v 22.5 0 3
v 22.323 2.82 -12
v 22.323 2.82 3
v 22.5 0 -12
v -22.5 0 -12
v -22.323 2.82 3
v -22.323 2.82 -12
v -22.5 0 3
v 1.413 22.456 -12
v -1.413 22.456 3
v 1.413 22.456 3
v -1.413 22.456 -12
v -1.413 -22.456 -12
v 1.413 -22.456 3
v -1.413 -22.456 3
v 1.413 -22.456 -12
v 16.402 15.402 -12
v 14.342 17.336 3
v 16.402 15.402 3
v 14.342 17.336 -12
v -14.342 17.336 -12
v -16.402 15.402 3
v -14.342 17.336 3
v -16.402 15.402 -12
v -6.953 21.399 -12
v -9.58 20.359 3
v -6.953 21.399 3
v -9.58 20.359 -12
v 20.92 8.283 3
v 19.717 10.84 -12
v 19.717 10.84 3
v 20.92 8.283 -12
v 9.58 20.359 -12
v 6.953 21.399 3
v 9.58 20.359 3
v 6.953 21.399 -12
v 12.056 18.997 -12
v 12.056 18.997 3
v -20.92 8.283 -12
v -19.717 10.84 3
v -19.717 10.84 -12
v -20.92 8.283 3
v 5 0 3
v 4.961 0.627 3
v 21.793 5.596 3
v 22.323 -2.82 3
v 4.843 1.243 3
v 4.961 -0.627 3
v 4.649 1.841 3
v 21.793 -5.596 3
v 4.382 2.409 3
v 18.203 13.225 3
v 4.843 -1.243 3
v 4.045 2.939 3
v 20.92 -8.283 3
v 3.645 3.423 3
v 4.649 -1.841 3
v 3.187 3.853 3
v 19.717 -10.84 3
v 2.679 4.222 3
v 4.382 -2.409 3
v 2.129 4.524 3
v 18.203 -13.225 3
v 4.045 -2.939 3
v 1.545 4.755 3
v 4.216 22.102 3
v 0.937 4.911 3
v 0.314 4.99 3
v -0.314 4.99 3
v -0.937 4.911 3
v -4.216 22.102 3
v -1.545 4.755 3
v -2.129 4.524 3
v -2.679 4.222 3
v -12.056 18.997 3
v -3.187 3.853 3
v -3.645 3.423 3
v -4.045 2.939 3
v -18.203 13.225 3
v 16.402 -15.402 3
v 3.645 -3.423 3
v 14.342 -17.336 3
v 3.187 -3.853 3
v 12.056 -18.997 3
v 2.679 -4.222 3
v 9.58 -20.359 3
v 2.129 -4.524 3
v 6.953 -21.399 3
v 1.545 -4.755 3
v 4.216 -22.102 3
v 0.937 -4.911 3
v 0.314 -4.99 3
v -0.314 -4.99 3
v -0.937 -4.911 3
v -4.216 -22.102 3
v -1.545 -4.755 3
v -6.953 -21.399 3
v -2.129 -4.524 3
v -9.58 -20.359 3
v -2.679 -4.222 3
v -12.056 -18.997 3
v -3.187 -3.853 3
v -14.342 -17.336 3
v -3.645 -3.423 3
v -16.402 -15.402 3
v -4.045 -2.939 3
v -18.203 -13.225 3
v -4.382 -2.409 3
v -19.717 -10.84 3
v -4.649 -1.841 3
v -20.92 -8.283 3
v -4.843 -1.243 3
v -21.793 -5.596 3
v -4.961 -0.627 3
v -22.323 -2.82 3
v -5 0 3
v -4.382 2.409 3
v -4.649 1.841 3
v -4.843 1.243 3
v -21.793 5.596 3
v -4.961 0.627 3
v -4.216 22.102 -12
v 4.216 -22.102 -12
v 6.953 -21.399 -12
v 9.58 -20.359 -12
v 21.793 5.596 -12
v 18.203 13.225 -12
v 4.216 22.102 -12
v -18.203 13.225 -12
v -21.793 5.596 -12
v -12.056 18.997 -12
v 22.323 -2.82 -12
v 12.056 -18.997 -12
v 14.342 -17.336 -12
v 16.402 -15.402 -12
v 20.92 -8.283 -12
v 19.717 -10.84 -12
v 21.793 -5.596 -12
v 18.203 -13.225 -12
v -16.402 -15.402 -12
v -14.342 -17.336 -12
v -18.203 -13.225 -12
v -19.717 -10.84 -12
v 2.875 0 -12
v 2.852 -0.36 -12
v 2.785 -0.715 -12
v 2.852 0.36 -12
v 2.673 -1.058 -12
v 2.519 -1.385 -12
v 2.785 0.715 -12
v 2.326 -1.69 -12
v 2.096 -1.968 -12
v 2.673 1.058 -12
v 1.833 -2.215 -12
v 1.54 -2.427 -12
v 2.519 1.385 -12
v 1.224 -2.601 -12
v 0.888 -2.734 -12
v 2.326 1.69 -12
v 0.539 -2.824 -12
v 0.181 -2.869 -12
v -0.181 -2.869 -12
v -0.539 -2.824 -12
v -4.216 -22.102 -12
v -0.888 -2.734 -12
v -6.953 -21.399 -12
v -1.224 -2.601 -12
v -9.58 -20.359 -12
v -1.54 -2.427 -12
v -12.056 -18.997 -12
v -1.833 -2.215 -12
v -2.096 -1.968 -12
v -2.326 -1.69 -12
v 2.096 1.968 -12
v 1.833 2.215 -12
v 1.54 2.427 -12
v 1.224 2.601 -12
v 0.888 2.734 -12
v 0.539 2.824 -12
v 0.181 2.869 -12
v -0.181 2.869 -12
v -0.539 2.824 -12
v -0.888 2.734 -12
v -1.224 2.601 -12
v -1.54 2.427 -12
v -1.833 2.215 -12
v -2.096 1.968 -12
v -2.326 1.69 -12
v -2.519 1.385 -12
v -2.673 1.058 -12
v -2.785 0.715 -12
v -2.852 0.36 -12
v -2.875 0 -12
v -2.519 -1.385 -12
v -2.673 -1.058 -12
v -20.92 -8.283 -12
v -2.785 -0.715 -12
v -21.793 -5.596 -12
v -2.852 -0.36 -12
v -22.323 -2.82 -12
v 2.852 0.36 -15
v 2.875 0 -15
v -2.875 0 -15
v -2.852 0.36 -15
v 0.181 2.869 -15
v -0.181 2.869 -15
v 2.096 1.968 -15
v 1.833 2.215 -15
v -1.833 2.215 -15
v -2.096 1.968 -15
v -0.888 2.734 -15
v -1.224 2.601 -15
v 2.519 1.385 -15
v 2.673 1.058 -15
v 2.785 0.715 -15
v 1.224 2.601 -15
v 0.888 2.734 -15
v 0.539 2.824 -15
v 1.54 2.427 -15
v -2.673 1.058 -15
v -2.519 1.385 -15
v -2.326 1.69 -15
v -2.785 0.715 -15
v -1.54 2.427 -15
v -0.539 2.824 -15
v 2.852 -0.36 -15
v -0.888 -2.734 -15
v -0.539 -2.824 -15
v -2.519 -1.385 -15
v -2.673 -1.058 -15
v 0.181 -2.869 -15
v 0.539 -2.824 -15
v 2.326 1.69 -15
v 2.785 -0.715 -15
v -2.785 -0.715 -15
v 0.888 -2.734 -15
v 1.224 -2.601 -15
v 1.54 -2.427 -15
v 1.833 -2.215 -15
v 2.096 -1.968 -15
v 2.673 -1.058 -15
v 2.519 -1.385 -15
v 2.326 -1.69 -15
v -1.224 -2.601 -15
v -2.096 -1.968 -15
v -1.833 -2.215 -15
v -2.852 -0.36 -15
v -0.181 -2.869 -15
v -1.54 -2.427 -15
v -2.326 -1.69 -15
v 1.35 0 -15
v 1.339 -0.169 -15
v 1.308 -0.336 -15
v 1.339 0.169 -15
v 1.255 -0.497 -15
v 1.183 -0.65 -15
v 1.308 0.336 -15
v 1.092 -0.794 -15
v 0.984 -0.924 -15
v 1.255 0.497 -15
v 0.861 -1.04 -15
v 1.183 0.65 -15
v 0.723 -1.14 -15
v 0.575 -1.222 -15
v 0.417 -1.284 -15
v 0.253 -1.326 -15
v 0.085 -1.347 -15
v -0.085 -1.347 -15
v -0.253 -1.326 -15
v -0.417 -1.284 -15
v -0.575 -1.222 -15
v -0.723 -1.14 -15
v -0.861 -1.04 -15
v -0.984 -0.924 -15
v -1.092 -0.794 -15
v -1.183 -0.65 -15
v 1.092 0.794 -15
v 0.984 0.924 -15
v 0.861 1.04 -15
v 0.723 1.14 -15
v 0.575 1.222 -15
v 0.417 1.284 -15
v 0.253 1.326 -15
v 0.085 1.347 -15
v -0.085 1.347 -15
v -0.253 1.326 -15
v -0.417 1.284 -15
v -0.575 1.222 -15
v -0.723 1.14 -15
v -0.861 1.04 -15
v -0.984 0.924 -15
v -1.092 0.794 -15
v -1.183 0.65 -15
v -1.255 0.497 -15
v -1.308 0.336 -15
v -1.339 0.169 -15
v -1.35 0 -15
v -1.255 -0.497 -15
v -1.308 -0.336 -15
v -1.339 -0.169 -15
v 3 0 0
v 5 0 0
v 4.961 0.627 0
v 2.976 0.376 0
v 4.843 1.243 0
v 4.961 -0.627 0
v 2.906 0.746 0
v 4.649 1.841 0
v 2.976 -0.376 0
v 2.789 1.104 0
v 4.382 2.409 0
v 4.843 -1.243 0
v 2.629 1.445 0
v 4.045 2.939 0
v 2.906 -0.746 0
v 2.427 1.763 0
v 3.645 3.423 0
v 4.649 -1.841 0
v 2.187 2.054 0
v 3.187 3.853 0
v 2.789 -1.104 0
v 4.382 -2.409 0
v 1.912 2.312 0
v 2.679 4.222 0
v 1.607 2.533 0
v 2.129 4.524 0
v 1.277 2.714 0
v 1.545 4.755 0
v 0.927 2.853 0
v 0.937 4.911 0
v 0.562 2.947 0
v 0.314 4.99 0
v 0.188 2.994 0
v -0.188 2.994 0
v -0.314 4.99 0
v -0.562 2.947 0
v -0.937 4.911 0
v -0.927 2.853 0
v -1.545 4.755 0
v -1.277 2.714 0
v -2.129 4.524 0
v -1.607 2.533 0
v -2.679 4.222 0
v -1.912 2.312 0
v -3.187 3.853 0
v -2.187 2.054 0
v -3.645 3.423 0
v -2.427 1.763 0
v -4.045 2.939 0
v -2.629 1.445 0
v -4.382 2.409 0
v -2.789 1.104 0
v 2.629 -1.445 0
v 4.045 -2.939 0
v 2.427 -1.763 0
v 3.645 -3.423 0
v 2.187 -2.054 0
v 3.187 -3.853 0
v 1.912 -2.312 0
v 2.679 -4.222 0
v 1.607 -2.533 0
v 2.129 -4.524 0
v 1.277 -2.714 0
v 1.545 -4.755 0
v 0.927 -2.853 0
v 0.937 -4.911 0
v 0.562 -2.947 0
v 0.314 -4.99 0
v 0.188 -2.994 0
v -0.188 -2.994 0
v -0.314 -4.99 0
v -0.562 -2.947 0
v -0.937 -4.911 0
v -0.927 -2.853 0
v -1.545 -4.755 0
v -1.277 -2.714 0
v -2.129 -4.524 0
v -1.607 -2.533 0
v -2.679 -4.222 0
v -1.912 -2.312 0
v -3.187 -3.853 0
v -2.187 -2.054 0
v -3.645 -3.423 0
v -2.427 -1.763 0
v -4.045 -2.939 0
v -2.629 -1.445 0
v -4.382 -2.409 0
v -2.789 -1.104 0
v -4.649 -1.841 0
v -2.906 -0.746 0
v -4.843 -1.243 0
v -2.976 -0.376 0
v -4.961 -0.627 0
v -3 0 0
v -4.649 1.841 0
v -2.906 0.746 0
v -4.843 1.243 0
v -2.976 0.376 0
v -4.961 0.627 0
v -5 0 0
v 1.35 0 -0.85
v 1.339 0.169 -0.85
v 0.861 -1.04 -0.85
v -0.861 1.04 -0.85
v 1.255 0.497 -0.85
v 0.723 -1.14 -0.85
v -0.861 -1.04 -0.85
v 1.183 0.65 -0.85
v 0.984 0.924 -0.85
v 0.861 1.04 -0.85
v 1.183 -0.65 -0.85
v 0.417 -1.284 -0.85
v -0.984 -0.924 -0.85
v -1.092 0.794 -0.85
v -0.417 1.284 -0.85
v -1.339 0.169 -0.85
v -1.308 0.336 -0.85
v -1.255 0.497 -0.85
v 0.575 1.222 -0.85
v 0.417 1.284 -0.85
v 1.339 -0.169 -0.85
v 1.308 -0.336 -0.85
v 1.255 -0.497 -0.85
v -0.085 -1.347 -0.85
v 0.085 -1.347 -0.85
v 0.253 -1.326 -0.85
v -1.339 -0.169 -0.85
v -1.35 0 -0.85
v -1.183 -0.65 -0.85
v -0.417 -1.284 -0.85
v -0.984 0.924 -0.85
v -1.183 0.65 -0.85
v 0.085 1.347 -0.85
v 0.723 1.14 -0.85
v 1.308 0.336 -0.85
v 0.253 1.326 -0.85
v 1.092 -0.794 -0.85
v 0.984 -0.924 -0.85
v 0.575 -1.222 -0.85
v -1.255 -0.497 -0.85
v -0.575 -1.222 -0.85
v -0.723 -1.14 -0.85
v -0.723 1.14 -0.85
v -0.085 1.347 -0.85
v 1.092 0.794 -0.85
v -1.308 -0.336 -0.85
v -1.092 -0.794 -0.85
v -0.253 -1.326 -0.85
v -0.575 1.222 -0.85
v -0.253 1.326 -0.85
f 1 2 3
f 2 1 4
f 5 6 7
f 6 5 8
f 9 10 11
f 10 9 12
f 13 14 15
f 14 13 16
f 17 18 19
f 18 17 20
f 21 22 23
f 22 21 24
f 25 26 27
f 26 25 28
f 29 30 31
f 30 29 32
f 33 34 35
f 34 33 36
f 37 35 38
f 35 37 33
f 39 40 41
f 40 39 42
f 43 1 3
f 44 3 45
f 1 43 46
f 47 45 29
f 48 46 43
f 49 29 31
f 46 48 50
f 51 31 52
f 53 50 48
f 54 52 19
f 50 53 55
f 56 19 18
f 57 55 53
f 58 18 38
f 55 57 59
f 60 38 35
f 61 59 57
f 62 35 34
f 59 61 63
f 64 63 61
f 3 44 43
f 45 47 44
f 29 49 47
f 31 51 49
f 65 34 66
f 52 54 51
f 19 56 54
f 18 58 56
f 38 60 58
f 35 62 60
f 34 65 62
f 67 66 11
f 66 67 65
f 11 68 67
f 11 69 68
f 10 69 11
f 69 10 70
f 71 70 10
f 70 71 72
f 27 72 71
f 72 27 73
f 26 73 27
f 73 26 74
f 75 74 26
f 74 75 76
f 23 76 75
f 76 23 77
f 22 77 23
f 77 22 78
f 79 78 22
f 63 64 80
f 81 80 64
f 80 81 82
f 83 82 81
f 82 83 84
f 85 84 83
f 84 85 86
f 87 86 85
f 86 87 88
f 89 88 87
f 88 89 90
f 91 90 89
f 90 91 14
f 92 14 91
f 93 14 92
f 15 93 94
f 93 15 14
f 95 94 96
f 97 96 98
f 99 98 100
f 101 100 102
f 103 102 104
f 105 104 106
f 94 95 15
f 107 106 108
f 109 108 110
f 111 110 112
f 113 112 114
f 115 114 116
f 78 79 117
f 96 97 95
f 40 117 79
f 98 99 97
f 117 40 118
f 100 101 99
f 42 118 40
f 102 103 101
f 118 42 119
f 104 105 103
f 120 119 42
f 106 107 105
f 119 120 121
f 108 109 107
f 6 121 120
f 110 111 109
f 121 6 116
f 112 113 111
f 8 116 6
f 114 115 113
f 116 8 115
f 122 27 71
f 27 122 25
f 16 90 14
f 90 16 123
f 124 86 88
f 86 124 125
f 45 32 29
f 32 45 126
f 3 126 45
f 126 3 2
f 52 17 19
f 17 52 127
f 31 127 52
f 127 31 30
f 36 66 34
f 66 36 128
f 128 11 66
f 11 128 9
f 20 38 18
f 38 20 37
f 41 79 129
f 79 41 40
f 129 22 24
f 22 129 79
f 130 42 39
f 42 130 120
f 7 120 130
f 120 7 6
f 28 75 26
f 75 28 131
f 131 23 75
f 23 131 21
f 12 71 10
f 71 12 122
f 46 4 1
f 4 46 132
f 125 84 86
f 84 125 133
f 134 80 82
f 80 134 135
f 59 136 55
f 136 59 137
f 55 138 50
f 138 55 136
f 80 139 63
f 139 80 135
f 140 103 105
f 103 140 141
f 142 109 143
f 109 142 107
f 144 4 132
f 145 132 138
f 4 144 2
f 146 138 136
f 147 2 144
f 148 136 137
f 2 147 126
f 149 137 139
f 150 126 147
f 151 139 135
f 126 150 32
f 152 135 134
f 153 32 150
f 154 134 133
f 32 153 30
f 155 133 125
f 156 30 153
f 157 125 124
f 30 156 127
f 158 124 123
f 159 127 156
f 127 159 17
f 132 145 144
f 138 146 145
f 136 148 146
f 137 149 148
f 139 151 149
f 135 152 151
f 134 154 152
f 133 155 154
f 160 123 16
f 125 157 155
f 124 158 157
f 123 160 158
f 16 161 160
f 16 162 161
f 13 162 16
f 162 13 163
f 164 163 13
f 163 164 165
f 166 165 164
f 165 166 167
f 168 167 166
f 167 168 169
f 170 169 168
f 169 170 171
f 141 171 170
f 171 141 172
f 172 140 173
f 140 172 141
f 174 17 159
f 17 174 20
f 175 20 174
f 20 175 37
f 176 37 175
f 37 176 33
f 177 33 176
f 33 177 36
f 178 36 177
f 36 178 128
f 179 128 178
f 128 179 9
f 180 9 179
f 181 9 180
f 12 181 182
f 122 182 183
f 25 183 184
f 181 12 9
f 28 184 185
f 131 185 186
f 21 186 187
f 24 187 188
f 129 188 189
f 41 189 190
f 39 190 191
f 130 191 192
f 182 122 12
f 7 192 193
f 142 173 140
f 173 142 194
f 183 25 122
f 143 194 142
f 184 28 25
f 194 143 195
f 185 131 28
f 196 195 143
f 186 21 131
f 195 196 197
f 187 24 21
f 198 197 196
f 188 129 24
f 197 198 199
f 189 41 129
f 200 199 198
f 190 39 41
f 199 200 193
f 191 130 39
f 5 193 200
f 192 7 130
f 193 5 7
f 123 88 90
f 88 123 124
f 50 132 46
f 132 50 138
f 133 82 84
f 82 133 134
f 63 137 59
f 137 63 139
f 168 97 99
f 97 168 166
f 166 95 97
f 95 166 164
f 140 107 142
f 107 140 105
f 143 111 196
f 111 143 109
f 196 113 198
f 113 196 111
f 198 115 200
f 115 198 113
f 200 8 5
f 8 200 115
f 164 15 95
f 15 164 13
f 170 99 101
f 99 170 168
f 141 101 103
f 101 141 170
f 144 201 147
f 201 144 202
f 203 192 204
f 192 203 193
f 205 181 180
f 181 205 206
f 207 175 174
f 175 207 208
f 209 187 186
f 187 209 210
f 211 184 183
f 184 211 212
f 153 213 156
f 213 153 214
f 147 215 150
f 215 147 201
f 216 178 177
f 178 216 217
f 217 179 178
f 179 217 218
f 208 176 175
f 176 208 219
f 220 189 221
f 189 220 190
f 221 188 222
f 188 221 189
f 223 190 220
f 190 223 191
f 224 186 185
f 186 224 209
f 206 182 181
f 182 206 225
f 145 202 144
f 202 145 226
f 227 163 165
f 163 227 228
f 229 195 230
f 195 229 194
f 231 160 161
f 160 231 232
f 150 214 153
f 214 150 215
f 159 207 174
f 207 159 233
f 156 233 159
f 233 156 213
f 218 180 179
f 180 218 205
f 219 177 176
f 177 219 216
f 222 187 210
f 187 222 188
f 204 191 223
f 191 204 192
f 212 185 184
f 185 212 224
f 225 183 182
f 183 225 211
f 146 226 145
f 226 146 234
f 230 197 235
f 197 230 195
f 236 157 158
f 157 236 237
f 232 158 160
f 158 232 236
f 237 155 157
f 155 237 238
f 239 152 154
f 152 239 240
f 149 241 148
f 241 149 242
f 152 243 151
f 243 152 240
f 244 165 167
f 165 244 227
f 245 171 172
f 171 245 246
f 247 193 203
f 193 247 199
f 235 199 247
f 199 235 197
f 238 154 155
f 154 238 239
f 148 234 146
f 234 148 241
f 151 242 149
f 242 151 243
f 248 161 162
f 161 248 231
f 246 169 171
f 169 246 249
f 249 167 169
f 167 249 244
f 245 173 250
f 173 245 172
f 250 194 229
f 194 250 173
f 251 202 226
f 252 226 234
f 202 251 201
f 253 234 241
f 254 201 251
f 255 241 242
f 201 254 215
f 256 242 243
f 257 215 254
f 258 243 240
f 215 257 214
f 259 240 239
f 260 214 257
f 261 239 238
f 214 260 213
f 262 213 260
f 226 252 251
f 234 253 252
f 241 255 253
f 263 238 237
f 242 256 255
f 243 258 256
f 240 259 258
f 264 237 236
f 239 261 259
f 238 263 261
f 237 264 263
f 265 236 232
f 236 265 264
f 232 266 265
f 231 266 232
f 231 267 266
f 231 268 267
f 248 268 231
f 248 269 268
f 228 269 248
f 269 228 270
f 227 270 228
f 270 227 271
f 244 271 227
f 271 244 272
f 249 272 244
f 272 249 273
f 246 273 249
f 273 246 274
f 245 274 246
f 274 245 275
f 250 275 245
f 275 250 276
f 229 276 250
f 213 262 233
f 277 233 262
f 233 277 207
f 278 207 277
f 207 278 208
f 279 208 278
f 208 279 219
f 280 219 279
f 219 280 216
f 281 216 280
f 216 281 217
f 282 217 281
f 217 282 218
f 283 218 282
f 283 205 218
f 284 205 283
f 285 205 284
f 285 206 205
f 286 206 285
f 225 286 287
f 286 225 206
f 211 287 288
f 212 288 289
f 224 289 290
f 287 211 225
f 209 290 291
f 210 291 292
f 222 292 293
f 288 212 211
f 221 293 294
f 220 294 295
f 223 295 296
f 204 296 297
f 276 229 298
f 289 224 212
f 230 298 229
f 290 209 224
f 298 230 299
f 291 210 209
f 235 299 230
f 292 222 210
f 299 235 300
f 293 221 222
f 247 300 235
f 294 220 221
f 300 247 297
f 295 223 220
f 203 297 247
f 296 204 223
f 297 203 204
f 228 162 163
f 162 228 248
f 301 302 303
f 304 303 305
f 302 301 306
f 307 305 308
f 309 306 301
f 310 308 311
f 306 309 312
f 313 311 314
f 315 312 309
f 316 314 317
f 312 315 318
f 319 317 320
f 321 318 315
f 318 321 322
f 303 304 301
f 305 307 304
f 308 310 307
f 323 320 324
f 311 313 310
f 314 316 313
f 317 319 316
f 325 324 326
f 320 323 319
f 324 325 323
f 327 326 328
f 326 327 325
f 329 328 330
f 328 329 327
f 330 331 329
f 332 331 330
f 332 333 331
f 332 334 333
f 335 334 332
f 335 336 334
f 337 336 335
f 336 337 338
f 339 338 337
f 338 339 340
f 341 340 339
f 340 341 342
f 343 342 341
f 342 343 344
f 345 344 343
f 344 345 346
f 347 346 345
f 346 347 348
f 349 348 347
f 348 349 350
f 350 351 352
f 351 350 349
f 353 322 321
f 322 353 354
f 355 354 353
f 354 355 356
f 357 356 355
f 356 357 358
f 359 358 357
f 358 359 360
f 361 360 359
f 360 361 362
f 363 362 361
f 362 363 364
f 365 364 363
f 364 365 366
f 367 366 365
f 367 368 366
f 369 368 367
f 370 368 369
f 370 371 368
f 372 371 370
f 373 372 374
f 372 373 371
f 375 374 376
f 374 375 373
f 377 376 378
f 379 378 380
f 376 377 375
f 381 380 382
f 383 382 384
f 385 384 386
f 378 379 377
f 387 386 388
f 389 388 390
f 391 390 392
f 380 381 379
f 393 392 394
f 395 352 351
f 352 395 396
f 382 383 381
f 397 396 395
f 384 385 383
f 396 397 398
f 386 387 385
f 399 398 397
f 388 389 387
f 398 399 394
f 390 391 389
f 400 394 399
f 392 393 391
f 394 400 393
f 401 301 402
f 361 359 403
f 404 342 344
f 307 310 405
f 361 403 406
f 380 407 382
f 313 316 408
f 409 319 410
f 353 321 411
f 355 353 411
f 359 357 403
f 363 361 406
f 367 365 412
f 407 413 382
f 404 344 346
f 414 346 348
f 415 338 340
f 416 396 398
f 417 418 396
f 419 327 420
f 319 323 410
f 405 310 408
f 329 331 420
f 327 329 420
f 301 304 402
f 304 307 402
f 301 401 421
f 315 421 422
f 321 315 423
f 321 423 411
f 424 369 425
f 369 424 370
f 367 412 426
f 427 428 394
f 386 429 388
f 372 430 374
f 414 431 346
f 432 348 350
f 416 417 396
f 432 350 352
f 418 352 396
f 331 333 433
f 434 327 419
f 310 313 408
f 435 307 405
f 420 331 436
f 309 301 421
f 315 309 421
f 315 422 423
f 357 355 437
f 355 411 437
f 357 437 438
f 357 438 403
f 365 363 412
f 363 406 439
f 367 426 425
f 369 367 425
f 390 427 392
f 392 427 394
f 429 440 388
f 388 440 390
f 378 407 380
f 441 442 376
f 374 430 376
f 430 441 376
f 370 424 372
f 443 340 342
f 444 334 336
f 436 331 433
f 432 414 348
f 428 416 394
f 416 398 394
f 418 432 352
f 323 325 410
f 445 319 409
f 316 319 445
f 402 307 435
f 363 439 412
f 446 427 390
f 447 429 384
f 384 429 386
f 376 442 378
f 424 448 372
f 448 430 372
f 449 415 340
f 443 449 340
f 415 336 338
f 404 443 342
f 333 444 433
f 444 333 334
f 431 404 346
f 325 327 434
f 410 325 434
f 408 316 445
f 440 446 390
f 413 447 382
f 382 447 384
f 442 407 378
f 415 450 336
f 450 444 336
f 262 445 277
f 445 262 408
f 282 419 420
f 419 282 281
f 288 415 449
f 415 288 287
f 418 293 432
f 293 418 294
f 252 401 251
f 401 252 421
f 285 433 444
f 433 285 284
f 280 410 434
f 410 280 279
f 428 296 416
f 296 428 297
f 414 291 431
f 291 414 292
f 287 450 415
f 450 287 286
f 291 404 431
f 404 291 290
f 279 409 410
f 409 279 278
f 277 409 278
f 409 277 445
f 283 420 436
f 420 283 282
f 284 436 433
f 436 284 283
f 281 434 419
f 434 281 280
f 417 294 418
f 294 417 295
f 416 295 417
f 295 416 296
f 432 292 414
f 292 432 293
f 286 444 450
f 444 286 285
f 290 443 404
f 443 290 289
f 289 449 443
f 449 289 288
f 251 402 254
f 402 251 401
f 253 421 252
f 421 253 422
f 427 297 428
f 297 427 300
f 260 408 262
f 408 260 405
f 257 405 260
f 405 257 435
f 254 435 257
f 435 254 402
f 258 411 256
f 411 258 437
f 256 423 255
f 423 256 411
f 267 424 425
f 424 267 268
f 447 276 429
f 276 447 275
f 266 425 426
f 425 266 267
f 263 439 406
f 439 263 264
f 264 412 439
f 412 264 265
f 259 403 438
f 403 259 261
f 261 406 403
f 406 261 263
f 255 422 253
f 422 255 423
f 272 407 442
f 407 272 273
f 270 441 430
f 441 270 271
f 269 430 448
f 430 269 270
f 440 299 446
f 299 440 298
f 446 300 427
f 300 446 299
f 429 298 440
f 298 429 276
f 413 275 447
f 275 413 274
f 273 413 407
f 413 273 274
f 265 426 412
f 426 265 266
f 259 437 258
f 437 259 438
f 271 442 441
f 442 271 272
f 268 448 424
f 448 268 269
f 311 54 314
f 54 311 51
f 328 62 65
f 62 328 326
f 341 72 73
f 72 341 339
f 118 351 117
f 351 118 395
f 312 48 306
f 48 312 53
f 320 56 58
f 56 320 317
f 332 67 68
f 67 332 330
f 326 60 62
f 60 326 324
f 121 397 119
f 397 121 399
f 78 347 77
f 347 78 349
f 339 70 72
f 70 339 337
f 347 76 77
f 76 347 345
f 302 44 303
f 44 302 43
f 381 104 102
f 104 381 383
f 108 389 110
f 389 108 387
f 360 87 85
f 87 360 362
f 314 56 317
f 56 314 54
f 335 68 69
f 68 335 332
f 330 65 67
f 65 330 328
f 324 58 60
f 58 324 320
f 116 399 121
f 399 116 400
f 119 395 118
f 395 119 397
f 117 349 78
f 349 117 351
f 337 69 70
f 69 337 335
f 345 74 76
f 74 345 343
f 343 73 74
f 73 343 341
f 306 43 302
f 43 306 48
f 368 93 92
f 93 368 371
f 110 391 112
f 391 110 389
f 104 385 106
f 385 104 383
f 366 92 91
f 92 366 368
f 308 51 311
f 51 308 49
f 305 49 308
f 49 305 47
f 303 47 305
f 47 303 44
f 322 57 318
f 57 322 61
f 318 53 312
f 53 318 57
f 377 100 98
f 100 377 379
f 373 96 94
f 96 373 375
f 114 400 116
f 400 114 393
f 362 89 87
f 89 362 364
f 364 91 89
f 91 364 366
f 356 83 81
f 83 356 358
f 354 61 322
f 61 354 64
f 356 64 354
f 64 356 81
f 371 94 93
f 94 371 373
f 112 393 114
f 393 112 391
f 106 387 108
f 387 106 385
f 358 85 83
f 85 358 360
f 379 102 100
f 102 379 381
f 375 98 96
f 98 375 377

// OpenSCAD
$fn = 50;

difference() {
	union() {
		translate(v = [0, 0, -12.0]) {
			cylinder(h = 15, r = 22.5);
		}
		#translate(v = [0, 0, -15.0]) {
			cylinder(h = 15, r = 2.875);
		}
	}
	union() {
		translate(v = [0, 0, 0]) {
			rotate(a = [0, 0, 0]) {
				difference() {
					union() {
						translate(v = [0, 0, -15.0]) {
							cylinder(h = 15, r = 1.0);
						}
						translate(v = [0, 0, -0.85]) {
							cylinder(h = 0.85, r1 = 1.35, r2 = 3.0);
						}
						translate(v = [0, 0, -15.0]) {
							cylinder(h = 15, r = 1.35);
						}
						translate(v = [0, 0, -15.0]) {
							cylinder(h = 15, r = 1.0);
						}
					}
					union();
				}
			}
		}
		#cylinder(h = 3, r = 5.0);
	}
}
